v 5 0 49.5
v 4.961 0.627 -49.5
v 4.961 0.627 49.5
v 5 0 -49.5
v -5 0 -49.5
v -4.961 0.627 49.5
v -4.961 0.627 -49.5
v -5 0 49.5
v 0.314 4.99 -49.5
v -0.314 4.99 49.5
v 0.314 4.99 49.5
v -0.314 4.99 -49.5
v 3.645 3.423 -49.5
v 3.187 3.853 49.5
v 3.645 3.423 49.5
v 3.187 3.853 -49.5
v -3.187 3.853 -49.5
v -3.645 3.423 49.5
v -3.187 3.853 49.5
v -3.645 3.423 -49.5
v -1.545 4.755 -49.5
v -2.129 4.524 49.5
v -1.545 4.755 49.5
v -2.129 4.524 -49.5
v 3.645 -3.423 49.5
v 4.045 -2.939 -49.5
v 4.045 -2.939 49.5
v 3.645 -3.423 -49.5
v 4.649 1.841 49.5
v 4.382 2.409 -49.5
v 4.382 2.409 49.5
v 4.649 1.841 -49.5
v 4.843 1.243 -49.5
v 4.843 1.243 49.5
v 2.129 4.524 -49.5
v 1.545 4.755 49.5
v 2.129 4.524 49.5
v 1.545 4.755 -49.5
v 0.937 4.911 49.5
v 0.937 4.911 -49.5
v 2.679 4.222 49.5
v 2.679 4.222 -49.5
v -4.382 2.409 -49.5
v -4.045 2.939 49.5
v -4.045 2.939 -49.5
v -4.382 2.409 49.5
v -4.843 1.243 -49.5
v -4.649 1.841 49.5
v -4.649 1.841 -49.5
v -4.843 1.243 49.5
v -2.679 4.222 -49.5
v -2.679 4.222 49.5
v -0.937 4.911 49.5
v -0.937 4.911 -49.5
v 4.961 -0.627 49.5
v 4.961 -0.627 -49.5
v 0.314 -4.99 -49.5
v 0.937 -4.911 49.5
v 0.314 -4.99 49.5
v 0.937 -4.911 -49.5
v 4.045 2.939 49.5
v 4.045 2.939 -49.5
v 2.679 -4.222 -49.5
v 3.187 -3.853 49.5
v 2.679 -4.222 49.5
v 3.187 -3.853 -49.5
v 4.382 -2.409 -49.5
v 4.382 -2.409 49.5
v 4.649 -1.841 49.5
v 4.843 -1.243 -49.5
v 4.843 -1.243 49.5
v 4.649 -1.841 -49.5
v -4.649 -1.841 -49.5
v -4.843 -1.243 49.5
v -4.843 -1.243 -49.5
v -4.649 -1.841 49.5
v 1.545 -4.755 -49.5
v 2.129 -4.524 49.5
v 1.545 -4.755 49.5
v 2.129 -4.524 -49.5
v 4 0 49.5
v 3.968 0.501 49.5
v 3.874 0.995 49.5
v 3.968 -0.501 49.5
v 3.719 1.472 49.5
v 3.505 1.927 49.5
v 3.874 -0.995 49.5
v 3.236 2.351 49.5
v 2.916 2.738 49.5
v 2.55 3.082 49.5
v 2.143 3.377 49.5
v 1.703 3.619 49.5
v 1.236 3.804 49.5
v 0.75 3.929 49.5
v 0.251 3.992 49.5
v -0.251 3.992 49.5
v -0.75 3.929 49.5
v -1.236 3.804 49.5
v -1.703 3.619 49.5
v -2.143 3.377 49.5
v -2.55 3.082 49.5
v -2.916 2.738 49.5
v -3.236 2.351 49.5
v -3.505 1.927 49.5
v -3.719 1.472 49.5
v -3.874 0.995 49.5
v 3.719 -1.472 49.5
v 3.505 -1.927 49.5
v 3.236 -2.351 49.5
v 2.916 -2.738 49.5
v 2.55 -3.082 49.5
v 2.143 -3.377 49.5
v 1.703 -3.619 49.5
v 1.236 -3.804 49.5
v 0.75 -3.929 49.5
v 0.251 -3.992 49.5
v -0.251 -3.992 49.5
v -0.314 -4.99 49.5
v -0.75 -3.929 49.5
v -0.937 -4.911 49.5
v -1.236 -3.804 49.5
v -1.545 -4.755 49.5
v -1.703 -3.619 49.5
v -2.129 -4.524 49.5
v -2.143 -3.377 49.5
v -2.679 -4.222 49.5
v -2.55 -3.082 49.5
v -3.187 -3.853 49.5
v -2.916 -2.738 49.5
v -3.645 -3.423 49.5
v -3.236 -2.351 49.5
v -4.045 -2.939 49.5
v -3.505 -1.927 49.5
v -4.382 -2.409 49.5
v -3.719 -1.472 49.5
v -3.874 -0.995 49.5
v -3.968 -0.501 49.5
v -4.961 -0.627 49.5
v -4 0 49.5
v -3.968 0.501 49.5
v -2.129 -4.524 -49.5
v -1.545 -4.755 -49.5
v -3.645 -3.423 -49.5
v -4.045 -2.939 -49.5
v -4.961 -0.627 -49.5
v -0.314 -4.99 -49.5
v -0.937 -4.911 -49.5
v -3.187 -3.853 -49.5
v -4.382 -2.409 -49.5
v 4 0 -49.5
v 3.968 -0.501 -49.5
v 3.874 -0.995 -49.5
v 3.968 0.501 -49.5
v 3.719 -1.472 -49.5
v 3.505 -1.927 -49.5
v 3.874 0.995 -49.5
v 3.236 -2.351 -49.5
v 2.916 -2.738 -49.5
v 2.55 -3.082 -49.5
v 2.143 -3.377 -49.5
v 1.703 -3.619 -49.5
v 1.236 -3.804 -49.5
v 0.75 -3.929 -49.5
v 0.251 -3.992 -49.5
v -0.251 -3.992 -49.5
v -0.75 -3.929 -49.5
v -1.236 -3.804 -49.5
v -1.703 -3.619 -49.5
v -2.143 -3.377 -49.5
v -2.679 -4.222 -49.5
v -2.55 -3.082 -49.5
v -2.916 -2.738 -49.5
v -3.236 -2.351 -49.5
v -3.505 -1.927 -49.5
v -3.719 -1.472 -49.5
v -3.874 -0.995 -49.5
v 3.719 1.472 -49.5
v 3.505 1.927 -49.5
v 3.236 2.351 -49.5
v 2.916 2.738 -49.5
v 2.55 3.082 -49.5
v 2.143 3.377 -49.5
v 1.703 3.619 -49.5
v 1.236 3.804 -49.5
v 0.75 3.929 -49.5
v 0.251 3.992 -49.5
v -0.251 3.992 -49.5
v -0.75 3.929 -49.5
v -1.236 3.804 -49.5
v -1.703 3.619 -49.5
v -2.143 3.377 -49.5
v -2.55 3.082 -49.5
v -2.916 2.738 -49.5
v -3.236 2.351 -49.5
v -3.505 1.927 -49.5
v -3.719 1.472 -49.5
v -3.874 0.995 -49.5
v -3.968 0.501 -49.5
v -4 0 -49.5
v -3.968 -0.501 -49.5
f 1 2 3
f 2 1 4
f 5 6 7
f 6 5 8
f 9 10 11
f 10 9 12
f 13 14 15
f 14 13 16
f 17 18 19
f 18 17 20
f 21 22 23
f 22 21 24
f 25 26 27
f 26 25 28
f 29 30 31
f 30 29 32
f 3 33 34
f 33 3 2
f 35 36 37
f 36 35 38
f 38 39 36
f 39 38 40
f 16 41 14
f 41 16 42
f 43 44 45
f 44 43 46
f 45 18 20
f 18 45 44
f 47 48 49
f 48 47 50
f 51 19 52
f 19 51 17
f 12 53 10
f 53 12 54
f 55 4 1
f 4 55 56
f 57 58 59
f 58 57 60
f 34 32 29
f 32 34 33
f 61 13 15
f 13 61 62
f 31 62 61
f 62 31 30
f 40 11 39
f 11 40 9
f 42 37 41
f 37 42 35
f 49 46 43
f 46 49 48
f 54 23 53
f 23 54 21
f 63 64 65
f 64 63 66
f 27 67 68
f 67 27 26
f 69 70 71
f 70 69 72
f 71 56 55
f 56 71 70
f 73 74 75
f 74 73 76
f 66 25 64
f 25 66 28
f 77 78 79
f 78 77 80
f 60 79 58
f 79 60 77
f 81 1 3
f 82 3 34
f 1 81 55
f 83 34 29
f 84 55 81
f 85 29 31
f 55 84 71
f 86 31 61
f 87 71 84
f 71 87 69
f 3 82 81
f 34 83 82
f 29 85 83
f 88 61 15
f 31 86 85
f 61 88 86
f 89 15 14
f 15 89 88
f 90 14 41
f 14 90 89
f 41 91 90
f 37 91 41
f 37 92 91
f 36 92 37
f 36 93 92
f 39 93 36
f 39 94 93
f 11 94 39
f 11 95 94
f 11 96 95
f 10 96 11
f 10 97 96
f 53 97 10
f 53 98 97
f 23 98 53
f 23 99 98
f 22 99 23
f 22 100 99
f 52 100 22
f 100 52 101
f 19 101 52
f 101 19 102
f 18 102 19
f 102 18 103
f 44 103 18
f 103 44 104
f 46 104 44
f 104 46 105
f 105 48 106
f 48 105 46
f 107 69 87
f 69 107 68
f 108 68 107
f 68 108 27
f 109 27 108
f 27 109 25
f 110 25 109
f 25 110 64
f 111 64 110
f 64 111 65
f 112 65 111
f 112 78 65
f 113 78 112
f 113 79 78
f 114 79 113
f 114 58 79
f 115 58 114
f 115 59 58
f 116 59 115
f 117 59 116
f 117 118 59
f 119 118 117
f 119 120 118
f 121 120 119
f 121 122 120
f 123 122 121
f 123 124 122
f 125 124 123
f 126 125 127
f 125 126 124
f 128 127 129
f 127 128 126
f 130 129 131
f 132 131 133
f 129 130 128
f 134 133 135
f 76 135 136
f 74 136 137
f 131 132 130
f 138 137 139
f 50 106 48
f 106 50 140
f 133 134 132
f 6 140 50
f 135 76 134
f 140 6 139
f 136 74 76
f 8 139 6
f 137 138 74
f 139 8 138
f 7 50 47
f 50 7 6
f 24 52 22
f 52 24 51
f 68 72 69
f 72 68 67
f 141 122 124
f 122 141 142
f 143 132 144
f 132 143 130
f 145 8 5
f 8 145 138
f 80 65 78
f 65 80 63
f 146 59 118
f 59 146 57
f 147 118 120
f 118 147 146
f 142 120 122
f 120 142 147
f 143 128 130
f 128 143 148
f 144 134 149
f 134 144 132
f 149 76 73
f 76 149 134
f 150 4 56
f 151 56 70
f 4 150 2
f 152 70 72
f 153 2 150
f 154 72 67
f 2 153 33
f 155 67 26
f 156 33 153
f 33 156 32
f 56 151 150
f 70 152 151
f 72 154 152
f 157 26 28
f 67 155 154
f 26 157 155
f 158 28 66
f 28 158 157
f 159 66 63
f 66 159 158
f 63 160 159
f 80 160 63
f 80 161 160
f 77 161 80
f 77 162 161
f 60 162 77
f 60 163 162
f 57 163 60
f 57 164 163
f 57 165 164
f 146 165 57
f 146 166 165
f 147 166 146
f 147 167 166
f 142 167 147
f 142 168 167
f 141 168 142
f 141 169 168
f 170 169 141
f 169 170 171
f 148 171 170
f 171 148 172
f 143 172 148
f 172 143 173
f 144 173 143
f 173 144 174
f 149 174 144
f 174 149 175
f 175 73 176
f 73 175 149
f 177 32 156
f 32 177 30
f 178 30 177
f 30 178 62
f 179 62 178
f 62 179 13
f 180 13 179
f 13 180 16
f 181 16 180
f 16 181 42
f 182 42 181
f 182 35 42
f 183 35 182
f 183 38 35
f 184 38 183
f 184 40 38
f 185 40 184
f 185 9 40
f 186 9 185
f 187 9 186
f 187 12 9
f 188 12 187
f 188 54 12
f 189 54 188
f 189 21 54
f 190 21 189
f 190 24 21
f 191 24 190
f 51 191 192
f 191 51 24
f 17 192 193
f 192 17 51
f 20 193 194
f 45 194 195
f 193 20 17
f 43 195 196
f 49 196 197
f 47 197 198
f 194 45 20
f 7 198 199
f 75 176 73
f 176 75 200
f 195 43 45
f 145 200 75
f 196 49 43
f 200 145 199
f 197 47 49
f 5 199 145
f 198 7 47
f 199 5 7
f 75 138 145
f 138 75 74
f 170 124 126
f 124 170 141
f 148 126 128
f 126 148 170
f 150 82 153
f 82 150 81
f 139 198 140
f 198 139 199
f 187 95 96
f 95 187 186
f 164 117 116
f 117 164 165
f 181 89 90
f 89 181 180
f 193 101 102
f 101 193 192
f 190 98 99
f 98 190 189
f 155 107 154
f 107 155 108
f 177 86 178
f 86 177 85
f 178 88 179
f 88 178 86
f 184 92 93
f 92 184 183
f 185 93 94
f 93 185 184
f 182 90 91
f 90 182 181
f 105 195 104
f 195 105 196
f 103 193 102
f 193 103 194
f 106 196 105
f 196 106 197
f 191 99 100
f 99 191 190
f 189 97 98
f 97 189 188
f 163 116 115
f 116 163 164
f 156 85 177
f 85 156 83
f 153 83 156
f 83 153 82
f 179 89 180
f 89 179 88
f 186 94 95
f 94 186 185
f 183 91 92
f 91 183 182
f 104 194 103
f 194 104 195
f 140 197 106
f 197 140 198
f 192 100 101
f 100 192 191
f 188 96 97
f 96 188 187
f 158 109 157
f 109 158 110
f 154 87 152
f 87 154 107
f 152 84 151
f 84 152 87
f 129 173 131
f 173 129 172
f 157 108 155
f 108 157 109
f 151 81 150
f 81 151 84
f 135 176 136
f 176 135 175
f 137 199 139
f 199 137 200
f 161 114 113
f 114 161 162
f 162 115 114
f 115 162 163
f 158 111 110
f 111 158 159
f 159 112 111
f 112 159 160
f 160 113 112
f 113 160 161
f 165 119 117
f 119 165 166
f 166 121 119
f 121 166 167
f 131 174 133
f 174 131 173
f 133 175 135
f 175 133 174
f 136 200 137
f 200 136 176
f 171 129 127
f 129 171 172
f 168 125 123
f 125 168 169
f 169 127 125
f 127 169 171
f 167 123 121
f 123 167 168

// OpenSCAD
$fn = 50;


difference() {
	union() {
		translate(v = [0, 0, -49.5000000000]) {
			cylinder(h = 99, r = 5.0000000000);
		}
	}
	union() {
		translate(v = [0, 0, -100.0000000000]) {
			cylinder(h = 200, r = 4.0000000000);
		}
	}
}
